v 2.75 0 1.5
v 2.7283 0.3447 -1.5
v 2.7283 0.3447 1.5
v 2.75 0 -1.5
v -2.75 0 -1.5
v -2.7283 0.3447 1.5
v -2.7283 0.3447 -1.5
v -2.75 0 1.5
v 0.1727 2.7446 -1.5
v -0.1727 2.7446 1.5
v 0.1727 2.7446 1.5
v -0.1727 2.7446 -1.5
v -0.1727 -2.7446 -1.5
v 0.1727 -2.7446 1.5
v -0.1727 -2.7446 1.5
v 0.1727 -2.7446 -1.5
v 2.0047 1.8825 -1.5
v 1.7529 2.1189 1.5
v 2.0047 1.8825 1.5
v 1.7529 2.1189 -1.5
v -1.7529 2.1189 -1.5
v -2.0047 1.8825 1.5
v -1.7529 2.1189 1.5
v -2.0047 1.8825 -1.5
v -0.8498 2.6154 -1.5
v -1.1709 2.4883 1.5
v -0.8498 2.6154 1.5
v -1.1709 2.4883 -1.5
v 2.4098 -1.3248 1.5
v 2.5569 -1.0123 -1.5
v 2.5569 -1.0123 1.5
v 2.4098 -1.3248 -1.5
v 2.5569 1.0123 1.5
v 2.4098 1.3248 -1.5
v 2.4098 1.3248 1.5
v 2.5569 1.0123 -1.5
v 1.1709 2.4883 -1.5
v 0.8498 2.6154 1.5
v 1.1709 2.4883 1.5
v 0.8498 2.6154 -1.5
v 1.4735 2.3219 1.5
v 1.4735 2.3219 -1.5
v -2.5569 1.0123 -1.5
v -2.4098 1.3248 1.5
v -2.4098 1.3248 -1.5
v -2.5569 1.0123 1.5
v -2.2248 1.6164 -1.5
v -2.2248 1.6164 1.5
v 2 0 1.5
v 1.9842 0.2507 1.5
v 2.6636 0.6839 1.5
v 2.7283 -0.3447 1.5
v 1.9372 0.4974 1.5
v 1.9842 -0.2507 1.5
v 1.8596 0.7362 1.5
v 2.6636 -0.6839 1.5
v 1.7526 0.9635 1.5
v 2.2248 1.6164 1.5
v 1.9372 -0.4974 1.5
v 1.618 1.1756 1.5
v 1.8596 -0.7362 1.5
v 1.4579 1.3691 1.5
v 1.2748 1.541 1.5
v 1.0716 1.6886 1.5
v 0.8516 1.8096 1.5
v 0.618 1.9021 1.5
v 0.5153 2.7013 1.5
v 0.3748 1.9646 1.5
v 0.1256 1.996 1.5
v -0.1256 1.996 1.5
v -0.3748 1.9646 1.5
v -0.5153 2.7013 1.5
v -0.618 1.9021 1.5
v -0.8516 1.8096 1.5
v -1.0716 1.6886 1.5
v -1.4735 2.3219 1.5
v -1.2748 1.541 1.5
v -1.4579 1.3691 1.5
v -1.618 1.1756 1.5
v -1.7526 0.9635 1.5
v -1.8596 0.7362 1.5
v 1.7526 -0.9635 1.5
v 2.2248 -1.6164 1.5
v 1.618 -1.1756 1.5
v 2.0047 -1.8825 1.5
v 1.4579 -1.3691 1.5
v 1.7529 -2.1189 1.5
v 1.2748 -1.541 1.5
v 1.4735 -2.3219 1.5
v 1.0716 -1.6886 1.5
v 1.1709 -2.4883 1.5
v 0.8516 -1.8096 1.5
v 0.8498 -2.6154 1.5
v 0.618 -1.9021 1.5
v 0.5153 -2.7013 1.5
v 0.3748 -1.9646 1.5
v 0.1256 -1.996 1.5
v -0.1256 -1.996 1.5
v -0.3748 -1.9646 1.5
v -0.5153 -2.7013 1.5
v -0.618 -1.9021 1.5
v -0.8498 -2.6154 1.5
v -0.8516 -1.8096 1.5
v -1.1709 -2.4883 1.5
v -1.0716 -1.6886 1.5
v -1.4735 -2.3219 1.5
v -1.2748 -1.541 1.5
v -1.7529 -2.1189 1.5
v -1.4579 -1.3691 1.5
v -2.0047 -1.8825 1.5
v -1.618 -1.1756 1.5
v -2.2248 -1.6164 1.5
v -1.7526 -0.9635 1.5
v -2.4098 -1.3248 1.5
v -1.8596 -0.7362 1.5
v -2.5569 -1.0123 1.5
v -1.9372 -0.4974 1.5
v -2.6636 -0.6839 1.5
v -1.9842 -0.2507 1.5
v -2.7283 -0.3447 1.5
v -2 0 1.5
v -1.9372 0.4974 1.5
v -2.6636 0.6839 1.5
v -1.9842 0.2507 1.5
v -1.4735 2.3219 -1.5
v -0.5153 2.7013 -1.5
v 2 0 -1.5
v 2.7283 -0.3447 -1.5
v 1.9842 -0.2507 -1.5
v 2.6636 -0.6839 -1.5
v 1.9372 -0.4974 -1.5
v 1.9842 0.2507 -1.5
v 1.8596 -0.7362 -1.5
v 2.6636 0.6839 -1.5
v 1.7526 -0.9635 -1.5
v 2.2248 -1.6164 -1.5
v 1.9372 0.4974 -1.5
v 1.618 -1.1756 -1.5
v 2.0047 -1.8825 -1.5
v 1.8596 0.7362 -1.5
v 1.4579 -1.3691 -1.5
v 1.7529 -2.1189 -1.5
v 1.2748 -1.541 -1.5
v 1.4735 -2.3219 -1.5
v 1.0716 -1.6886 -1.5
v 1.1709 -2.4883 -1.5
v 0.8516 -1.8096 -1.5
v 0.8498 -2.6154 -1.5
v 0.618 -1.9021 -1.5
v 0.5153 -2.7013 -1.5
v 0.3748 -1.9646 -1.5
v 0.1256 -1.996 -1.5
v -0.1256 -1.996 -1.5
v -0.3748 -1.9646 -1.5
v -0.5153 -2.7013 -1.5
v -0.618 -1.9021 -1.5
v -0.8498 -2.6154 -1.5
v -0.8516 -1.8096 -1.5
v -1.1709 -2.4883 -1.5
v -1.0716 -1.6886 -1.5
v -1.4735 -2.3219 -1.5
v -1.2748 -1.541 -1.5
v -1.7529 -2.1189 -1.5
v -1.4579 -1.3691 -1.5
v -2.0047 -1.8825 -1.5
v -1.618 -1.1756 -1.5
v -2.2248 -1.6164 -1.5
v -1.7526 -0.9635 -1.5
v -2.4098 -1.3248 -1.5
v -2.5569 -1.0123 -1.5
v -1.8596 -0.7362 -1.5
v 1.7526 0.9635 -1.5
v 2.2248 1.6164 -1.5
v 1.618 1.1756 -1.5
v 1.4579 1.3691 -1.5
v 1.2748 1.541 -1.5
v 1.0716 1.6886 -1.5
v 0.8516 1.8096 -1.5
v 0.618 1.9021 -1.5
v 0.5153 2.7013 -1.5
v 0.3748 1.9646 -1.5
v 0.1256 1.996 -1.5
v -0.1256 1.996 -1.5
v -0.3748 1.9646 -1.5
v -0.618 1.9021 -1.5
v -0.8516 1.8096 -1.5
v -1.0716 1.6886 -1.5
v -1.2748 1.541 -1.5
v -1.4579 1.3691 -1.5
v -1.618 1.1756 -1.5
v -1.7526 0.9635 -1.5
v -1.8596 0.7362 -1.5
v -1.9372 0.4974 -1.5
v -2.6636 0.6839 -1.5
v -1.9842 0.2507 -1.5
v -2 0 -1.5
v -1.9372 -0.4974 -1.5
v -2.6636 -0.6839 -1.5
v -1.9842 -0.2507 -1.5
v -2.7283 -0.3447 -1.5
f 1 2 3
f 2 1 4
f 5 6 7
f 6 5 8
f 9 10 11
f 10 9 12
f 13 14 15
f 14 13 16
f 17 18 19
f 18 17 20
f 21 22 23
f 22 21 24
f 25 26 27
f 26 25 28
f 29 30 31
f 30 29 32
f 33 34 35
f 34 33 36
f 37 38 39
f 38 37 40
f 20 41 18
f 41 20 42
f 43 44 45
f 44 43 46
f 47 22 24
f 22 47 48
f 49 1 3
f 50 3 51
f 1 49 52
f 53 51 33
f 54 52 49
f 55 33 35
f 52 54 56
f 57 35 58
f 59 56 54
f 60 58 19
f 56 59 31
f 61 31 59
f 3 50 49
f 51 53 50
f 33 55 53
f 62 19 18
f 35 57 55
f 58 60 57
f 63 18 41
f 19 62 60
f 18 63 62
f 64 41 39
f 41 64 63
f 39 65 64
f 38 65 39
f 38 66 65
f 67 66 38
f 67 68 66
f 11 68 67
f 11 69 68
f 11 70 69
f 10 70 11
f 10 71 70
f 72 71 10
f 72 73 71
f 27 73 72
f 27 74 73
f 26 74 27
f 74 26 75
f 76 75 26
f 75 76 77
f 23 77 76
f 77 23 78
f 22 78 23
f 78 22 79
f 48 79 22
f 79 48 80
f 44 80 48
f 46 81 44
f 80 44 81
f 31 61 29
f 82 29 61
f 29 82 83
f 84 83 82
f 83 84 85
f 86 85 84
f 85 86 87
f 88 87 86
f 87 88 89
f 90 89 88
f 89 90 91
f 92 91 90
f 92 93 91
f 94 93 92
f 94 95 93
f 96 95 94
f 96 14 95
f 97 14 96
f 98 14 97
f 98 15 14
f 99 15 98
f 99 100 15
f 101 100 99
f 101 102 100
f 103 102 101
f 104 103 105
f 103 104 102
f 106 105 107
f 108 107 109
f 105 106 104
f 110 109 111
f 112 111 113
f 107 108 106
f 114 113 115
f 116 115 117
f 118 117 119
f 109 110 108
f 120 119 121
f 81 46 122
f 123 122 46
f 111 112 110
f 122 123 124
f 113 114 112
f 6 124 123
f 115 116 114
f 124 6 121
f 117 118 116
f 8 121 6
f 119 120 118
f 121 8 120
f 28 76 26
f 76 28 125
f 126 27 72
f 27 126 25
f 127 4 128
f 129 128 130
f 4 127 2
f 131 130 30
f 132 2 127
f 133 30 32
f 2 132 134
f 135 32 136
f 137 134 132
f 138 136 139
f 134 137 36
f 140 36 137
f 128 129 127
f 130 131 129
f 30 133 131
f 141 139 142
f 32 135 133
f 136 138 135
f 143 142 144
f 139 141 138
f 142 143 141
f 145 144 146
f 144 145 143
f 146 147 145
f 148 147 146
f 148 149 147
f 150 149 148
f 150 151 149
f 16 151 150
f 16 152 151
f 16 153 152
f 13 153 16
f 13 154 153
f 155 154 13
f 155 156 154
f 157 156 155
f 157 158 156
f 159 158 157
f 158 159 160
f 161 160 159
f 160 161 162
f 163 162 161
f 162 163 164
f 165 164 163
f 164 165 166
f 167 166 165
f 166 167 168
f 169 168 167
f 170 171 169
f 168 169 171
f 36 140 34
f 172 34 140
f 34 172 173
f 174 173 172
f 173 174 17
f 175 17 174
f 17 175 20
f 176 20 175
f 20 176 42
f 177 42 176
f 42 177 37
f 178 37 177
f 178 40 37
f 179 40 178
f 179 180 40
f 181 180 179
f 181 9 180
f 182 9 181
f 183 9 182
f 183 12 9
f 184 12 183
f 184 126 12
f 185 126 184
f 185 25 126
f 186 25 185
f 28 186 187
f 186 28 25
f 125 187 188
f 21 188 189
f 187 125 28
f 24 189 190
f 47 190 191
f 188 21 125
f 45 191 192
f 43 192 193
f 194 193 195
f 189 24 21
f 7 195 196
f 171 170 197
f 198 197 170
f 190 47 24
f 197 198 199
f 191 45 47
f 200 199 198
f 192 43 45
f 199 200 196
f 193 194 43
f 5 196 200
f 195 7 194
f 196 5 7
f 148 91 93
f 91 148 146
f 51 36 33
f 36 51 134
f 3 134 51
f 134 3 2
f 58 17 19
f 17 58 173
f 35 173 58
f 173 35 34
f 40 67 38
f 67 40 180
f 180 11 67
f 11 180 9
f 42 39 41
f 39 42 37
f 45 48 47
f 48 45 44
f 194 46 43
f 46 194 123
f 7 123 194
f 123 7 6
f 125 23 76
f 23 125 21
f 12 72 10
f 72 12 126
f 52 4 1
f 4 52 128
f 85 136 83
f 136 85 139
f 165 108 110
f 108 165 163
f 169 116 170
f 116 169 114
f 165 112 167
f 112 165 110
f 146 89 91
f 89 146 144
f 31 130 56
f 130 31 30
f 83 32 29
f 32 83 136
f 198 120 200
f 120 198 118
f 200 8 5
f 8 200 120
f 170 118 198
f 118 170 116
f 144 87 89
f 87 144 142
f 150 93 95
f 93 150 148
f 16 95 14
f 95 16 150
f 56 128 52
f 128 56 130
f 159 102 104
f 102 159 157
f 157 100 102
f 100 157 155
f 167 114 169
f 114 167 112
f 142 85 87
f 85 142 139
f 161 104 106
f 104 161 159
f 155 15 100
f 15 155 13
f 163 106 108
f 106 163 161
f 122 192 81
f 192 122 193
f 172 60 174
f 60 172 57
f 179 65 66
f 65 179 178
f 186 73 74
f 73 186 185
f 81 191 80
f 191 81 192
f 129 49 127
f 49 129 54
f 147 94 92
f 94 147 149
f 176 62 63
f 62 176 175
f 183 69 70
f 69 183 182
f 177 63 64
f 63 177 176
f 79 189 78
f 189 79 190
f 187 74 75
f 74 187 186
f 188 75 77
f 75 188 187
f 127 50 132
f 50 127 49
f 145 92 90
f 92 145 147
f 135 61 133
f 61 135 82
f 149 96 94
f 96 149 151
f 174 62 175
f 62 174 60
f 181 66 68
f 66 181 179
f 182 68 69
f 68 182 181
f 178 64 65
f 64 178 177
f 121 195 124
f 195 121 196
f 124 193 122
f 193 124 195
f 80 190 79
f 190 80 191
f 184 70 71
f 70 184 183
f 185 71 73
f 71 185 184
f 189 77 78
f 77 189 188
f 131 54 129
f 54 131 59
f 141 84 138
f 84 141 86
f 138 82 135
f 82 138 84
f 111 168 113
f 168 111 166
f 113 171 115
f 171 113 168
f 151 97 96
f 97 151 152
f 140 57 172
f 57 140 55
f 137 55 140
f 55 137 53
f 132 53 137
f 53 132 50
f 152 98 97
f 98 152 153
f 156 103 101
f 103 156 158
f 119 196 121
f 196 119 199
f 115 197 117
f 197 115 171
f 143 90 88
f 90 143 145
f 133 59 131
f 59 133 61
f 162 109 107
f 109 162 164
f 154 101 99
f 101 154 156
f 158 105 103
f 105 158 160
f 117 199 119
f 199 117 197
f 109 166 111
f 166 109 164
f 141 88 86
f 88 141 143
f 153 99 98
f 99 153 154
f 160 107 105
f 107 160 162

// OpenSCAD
$fn = 50;


difference() {
	union() {
		translate(v = [0, 0, -1.5000000000]) {
			cylinder(h = 3, r = 2.7500000000);
		}
	}
	union() {
		translate(v = [0, 0, -100.0000000000]) {
			cylinder(h = 200, r = 2.0000000000);
		}
	}
}
